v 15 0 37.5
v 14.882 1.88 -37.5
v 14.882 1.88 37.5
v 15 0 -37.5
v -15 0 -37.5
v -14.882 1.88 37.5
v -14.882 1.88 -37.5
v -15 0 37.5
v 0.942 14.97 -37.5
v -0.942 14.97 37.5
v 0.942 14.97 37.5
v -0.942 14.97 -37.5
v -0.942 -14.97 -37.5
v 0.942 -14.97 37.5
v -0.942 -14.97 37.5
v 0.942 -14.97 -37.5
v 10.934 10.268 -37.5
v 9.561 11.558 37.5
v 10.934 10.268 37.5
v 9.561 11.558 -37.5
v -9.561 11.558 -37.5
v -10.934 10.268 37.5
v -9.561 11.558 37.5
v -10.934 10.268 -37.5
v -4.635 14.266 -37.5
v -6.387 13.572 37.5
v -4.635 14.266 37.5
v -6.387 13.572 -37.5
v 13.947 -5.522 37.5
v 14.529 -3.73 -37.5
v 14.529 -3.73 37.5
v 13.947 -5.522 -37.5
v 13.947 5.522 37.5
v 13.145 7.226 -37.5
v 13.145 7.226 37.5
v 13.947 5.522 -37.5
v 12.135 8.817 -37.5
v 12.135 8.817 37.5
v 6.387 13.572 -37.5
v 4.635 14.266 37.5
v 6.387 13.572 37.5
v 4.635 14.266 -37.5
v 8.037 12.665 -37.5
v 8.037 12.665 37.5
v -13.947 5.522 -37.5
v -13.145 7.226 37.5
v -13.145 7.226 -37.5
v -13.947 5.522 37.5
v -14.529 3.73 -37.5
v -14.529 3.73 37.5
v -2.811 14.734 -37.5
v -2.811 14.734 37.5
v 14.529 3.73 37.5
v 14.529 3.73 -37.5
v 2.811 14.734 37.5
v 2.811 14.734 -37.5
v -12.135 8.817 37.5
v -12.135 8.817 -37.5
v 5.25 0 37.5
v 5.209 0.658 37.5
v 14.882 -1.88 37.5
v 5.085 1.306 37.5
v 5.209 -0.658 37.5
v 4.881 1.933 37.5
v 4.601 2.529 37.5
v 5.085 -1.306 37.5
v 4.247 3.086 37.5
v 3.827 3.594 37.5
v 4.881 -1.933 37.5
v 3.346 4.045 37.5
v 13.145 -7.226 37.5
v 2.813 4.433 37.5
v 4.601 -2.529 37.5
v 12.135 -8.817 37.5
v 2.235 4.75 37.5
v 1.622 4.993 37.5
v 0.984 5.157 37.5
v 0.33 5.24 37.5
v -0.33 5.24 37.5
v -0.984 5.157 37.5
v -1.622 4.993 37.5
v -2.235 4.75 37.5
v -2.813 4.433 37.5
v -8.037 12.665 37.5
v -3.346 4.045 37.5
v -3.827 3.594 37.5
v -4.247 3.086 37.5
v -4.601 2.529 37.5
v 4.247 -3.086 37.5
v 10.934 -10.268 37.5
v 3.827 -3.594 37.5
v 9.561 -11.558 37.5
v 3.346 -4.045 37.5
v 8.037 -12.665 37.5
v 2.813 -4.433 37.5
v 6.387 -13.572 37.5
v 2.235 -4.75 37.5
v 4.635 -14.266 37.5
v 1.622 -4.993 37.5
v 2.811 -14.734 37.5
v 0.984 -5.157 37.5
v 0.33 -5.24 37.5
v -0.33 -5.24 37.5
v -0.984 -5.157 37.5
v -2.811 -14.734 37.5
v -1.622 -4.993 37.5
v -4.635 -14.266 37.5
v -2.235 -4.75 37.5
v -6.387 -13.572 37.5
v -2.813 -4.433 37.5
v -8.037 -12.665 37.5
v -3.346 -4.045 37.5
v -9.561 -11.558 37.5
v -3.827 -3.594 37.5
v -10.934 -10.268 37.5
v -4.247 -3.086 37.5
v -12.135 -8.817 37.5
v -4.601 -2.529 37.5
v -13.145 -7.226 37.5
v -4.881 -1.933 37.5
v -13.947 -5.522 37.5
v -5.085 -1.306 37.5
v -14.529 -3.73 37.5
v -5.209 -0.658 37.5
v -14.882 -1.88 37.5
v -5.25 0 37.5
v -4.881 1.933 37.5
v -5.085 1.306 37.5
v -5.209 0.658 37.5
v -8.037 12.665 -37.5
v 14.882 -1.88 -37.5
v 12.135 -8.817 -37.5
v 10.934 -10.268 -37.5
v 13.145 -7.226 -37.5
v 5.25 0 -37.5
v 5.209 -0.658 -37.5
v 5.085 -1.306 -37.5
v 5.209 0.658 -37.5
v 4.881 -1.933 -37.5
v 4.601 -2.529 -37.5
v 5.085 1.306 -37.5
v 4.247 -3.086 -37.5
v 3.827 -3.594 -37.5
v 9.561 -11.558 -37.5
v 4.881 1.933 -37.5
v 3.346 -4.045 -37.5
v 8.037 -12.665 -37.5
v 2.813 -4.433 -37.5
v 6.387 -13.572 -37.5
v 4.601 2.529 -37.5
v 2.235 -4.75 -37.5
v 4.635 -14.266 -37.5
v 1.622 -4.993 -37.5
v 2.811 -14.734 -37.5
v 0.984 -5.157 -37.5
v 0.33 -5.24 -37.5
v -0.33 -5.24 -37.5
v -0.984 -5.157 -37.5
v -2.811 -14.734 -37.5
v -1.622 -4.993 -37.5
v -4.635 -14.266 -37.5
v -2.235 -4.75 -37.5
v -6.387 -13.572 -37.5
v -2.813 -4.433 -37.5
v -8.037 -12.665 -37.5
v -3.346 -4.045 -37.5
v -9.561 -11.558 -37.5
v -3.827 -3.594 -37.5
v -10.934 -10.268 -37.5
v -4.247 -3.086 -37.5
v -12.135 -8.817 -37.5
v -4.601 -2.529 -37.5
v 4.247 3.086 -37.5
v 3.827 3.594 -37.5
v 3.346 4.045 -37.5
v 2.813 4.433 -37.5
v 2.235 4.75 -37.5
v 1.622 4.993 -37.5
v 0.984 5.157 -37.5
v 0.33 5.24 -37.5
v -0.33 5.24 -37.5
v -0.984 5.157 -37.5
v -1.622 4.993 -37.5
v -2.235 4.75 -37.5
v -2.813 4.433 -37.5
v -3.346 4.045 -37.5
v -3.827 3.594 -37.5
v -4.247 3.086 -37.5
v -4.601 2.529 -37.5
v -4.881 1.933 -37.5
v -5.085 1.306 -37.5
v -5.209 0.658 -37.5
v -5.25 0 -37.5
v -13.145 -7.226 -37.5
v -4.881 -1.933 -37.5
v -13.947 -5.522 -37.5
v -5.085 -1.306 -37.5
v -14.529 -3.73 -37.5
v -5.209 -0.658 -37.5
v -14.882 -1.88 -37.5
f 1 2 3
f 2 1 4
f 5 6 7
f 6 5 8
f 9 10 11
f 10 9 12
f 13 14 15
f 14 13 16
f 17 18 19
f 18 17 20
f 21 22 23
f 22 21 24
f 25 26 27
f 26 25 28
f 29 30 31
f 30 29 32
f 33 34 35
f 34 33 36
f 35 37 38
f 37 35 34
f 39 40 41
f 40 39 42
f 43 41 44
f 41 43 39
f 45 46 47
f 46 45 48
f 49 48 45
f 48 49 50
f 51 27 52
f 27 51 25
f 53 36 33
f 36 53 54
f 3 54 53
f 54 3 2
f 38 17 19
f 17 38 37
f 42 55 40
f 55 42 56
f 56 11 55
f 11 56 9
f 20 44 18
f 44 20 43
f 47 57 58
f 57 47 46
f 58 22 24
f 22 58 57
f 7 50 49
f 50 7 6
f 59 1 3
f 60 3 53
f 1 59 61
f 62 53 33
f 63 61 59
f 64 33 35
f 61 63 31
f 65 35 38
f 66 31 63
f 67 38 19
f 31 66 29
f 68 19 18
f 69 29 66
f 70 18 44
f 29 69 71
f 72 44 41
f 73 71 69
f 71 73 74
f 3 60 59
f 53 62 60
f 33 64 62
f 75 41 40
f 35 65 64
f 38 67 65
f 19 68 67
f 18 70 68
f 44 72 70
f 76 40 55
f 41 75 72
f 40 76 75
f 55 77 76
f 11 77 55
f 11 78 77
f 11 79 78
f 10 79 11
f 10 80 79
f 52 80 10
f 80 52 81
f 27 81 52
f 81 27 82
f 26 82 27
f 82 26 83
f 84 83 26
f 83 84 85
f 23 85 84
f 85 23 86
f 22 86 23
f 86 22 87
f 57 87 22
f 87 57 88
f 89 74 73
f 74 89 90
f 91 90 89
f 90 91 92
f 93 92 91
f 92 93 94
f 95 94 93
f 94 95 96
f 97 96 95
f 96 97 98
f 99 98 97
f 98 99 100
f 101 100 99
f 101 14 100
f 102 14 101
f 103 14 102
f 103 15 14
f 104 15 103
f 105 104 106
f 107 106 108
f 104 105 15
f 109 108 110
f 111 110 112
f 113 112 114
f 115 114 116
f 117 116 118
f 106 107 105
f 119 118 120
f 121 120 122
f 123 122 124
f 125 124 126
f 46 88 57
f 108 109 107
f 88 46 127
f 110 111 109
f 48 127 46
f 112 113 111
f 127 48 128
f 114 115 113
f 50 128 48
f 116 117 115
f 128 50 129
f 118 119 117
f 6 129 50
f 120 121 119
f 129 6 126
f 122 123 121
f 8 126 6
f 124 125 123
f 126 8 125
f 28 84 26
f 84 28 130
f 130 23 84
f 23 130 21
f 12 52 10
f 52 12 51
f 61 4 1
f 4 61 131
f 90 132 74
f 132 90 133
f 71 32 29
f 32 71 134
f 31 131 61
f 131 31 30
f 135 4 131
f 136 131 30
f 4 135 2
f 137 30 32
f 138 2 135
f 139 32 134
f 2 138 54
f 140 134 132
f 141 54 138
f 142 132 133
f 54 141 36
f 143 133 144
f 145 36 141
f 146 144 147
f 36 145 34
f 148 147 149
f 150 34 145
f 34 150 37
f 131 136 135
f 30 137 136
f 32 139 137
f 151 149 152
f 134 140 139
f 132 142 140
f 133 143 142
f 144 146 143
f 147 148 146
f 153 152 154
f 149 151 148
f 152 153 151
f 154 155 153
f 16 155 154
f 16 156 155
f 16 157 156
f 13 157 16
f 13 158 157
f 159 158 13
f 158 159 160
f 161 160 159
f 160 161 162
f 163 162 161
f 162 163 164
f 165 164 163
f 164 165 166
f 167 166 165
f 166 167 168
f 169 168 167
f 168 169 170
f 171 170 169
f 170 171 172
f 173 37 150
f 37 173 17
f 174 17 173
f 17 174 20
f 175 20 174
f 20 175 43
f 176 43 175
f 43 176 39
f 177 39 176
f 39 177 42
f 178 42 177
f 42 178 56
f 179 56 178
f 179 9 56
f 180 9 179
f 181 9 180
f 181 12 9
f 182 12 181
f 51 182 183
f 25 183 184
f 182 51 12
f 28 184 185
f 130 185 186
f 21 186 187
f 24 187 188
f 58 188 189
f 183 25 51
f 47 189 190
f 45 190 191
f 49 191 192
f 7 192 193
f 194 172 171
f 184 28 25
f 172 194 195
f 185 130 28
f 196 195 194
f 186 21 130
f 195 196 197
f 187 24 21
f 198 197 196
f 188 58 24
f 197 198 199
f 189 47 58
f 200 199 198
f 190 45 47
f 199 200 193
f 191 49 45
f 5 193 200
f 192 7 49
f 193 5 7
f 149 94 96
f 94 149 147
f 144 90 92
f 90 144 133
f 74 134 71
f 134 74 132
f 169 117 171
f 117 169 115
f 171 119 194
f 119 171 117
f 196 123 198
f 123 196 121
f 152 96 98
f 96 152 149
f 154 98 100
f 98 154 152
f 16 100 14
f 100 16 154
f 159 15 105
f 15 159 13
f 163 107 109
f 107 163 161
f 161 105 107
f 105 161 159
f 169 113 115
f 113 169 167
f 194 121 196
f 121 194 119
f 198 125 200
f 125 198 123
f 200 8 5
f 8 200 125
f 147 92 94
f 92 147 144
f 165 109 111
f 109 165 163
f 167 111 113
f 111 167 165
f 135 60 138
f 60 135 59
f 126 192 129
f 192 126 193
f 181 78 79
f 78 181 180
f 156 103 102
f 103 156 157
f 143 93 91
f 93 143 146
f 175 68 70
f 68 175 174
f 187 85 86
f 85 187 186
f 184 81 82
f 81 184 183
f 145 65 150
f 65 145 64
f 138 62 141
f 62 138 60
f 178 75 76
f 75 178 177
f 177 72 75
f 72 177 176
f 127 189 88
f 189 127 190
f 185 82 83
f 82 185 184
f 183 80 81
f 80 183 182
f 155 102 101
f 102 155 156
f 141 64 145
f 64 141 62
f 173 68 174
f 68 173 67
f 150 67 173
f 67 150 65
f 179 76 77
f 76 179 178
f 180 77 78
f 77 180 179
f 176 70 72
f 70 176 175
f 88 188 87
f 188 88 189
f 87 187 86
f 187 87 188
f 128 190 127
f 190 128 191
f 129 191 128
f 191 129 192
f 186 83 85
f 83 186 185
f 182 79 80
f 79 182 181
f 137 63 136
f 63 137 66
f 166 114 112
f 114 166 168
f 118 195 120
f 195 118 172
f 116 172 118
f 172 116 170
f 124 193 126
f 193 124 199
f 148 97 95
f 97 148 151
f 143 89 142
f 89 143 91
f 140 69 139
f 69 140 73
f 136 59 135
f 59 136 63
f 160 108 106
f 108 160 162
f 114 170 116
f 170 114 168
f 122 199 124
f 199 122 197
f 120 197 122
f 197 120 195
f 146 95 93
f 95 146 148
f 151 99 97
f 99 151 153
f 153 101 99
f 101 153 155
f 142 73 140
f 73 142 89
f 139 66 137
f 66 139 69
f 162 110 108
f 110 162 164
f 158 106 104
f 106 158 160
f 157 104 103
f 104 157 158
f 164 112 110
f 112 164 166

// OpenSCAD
$fn = 50;


difference() {
	union() {
		translate(v = [0, 0, -37.5000000000]) {
			cylinder(h = 75, r = 15.0000000000);
		}
	}
	union() {
		translate(v = [0, 0, -100.0000000000]) {
			cylinder(h = 200, r = 5.2500000000);
		}
	}
}
